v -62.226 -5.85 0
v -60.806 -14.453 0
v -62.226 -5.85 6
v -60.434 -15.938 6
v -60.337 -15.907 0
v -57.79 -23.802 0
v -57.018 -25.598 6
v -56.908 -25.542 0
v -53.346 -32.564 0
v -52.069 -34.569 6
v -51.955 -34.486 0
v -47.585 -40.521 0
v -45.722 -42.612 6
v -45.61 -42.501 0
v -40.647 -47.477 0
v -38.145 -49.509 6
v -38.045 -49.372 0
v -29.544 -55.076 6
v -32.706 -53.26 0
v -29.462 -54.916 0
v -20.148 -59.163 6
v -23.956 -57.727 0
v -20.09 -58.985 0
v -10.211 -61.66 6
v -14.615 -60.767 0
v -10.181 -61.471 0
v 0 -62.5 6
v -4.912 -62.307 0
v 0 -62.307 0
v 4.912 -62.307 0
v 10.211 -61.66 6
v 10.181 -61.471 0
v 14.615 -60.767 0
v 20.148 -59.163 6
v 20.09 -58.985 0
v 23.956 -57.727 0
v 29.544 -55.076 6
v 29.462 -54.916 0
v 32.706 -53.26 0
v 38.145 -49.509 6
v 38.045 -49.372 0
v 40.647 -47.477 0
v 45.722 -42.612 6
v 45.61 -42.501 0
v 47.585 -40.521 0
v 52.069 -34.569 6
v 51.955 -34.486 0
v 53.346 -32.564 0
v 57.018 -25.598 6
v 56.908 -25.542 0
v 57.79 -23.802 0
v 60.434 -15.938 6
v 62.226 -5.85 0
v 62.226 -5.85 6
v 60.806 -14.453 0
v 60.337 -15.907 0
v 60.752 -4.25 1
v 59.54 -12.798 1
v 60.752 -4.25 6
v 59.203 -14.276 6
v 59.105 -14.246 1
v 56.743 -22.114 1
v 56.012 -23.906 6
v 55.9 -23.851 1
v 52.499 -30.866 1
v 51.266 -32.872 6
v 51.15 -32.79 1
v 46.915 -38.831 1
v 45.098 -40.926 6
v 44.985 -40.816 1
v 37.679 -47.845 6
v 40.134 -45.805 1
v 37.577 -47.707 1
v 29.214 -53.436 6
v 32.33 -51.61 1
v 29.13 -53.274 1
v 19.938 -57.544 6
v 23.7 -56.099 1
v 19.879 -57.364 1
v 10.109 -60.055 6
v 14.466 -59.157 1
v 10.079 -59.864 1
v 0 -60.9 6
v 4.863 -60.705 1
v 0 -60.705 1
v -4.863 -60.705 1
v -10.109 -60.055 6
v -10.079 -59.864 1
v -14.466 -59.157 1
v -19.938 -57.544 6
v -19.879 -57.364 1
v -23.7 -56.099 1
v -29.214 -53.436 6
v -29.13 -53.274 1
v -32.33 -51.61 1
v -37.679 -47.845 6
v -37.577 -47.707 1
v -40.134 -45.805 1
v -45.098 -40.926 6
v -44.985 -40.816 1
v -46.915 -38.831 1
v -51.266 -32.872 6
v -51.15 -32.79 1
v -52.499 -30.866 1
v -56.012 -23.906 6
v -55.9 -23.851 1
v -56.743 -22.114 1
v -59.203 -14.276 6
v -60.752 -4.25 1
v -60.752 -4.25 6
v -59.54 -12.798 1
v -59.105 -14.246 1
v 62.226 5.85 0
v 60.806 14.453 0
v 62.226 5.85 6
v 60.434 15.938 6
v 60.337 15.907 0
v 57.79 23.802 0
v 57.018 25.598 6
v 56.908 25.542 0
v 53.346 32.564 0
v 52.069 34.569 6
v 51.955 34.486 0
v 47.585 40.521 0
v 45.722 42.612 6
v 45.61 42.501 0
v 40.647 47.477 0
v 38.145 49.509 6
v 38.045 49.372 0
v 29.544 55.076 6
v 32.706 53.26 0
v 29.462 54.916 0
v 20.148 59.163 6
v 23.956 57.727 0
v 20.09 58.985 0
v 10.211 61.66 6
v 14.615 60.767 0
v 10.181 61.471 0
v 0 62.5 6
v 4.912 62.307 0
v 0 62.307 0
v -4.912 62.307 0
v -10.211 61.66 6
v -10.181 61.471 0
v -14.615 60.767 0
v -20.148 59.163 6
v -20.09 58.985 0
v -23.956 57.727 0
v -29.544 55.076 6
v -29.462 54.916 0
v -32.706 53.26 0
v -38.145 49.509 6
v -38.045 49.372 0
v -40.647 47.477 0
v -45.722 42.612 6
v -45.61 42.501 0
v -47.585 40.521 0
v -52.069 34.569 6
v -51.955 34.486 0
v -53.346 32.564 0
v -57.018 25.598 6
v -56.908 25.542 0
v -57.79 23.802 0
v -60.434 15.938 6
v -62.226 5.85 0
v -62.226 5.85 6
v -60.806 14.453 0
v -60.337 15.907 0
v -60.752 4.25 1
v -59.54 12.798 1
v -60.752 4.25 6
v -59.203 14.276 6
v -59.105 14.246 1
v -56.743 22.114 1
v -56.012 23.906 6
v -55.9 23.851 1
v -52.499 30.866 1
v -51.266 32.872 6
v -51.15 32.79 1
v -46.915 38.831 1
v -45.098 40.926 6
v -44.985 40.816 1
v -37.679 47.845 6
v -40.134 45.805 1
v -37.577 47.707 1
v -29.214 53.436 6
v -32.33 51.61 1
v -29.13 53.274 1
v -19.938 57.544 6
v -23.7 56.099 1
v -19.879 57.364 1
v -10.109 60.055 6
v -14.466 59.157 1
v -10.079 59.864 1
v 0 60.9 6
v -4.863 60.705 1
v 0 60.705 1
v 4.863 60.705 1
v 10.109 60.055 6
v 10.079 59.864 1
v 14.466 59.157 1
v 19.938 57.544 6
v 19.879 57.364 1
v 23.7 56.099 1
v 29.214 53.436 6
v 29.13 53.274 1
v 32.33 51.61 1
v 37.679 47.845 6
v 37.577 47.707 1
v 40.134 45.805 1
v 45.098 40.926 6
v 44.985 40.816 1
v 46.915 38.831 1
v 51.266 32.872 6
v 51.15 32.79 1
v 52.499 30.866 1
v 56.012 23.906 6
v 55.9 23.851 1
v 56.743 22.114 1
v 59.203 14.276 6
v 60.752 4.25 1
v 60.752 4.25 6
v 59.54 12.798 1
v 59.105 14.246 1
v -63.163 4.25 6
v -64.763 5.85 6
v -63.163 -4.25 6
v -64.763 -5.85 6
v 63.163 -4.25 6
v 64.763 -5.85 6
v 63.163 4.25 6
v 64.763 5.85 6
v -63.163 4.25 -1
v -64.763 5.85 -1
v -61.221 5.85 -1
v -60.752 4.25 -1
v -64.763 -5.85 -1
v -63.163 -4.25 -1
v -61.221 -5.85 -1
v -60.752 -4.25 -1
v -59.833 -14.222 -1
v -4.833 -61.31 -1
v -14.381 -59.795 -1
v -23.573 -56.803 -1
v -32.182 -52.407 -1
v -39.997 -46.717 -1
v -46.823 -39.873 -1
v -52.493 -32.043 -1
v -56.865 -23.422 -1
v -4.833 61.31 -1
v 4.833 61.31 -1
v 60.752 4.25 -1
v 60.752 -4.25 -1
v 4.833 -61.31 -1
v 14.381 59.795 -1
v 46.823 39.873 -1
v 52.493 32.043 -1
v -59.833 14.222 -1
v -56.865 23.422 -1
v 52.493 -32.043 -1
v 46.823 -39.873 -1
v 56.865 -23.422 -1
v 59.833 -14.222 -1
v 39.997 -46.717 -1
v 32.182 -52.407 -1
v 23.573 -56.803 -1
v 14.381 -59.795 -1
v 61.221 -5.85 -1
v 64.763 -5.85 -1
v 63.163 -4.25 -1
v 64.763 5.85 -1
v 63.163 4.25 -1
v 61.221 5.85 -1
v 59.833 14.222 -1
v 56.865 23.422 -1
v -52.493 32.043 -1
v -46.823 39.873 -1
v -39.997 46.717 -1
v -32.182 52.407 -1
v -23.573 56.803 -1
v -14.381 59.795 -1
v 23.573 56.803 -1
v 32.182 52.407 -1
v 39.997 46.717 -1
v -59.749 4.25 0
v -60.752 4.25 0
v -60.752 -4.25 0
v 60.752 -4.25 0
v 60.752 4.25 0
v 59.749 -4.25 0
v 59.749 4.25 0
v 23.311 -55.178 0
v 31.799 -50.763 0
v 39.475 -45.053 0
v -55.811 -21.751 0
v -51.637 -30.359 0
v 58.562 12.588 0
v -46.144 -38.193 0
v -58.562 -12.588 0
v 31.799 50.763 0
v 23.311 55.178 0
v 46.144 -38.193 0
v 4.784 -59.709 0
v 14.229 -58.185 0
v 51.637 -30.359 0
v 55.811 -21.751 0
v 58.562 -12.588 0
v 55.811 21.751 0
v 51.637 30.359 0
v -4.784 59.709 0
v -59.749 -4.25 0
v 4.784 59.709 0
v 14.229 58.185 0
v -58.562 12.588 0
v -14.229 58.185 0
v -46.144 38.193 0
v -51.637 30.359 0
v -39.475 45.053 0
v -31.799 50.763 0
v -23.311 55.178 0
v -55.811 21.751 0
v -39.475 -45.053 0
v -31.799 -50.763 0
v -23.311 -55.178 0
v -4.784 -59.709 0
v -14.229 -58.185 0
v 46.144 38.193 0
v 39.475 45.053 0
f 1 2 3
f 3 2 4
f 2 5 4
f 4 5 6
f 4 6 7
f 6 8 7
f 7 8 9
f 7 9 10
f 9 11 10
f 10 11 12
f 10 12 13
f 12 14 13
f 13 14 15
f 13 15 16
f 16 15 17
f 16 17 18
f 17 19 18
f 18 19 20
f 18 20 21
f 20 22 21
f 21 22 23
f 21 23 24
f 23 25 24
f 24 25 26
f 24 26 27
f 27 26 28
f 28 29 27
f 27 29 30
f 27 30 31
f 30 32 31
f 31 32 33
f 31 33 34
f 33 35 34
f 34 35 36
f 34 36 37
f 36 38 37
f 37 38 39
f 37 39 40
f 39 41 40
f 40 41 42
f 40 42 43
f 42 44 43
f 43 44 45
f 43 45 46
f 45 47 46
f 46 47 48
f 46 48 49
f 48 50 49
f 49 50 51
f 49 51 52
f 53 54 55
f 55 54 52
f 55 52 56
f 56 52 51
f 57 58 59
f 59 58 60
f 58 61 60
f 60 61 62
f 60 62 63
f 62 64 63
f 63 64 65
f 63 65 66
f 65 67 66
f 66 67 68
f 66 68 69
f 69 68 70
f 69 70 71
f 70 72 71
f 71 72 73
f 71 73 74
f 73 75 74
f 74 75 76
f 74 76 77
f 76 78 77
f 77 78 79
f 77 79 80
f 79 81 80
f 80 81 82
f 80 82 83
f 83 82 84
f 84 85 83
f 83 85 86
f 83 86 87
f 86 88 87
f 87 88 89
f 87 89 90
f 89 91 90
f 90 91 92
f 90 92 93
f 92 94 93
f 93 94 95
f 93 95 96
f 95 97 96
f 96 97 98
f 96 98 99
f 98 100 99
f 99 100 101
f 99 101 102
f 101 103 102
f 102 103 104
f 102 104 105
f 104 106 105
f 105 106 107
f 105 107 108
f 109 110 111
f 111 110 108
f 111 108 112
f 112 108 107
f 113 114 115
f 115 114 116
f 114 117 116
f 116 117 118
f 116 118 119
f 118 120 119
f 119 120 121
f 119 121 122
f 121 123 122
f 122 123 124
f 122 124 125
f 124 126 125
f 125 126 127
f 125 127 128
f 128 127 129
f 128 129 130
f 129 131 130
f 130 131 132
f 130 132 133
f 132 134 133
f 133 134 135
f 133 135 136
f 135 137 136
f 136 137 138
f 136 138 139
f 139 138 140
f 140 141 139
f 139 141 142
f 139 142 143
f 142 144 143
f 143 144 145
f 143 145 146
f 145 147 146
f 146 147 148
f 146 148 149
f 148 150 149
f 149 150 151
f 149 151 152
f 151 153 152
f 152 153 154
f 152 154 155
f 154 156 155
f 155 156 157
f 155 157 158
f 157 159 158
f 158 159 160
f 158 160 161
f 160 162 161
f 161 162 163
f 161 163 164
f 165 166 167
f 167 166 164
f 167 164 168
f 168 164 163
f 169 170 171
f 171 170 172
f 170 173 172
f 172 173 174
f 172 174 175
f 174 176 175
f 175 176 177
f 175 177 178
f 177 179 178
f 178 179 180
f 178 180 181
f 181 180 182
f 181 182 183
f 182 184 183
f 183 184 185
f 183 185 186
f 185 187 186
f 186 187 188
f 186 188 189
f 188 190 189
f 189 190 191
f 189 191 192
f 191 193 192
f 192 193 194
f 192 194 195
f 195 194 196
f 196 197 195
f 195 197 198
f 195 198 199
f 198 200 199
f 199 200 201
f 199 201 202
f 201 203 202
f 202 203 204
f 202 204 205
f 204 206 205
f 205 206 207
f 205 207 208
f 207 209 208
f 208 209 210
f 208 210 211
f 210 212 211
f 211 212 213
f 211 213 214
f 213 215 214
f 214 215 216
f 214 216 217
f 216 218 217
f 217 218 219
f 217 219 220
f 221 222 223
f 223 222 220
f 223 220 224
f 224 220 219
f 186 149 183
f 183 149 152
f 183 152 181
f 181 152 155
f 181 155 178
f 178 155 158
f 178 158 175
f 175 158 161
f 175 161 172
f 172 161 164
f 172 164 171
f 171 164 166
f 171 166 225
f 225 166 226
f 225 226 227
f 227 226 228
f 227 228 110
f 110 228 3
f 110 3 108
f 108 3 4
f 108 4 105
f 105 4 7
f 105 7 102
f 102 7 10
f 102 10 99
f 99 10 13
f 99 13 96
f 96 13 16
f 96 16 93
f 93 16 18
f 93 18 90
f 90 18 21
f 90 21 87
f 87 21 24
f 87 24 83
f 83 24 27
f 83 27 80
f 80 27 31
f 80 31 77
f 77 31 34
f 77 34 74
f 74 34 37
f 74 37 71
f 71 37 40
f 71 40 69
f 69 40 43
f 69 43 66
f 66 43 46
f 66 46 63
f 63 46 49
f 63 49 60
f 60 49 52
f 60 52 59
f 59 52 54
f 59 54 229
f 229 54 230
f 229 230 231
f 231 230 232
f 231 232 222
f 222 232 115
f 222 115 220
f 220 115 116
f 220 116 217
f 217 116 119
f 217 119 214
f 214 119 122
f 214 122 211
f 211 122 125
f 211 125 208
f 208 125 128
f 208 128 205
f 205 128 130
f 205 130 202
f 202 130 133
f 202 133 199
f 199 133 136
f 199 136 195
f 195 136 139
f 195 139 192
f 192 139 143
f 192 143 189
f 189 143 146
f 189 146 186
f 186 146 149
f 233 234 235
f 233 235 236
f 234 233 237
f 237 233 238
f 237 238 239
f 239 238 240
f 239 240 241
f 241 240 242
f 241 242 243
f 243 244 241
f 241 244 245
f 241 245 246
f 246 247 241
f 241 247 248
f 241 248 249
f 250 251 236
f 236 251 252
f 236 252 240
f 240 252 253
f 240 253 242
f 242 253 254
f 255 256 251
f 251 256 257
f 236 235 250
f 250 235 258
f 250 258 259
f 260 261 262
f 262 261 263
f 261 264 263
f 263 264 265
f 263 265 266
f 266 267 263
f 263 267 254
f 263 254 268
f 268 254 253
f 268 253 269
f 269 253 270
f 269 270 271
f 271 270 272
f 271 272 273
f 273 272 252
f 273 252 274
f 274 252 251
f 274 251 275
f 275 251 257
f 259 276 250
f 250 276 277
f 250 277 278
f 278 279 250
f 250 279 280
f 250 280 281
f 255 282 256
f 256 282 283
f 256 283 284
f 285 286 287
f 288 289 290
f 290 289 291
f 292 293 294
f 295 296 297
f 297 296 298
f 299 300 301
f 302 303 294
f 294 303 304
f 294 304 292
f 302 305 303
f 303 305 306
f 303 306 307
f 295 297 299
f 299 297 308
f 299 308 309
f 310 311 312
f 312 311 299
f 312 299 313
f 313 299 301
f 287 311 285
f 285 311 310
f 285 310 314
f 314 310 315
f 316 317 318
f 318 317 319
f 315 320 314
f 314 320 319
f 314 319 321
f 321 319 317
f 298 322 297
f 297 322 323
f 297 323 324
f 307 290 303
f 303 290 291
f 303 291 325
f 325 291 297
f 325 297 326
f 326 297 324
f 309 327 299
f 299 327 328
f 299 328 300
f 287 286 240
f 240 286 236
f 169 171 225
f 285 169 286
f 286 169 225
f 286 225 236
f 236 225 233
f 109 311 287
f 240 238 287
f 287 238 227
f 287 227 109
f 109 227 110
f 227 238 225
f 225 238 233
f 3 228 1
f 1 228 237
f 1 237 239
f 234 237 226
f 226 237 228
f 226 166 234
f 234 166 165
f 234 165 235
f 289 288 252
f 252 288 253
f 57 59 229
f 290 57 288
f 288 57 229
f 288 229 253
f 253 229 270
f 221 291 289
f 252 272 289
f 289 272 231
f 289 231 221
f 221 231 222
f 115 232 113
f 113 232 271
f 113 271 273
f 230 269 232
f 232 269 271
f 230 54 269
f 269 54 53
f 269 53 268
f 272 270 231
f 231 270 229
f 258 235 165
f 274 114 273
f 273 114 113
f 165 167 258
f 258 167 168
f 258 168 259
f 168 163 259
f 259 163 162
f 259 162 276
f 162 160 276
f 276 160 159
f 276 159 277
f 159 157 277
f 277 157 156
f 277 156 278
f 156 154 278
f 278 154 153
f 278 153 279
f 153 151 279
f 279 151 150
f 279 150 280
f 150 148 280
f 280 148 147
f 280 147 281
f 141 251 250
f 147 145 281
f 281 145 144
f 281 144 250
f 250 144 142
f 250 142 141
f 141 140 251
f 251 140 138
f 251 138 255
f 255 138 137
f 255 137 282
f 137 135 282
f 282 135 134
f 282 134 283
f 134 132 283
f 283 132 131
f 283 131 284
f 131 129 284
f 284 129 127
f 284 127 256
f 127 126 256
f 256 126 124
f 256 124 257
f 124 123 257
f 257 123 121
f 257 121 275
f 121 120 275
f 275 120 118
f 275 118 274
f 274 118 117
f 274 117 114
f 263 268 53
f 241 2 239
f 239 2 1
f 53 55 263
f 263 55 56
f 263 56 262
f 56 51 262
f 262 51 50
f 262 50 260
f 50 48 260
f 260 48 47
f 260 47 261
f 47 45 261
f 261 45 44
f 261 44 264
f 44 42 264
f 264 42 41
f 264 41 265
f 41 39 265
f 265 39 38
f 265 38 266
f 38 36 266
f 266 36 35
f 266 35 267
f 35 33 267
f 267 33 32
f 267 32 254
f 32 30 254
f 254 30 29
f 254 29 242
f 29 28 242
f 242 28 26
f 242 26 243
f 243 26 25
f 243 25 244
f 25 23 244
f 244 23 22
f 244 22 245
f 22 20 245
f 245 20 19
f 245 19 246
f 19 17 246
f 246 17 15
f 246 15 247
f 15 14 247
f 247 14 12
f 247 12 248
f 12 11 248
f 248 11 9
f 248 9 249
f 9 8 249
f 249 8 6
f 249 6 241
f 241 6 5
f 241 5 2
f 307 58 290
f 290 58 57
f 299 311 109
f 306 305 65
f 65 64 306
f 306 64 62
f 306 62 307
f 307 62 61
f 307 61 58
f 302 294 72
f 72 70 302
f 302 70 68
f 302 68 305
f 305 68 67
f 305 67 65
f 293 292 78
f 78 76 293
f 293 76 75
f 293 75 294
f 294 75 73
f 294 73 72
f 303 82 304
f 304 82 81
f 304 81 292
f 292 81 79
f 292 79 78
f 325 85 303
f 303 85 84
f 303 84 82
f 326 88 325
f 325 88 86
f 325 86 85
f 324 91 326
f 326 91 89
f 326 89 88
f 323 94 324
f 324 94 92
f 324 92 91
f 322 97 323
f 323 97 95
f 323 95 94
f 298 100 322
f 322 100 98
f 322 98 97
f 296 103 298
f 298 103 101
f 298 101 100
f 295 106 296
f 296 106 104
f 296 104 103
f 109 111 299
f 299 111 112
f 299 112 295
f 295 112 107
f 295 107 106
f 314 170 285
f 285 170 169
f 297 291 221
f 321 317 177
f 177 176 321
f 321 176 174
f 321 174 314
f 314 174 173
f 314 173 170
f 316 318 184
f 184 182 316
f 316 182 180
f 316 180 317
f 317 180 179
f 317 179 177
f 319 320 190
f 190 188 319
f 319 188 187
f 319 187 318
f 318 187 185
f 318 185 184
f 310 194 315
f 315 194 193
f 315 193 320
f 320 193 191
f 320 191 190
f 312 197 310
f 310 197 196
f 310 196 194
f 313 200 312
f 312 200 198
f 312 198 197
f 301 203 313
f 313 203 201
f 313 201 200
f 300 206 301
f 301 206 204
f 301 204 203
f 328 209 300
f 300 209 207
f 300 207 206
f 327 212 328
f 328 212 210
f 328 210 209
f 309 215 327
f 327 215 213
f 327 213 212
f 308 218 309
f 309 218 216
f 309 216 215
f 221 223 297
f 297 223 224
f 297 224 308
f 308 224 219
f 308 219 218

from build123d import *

# Parameters (mm, degrees)
BOSS_EXTRUDE1_DEPTH = 6
BOSS_EXTRUDE2_START = -1
SKETCH1_2_R         = 62.5
BOSS_EXTRUDE2_DEPTH = 1
CUT_EXTRUDE1_DEPTH  = 89.591760339
BOSS_EXTRUDE3_START = -1
BOSS_EXTRUDE3_DEPTH = 7
CHAMFER1_SIZE       = 1


with BuildPart() as part:
    # Sketch1 → Boss-Extrude1 (new body)
    with BuildSketch(Plane.XY):
        with BuildLine():
            ThreePointArc((-60.751522615, -4.25), (-60.9, 0), (-60.751522615, 4.25))
            Line((-60.751522615, 4.25), (-62.355332571, 4.25))
            ThreePointArc((-62.355332571, 4.25), (-62.5, 0), (-62.355332571, -4.25))
            Line((-62.355332571, -4.25), (-60.751522615, -4.25))
        make_face()
        with BuildLine():
            Line((-62.355332571, 4.25), (-60.751522615, 4.25))
            ThreePointArc((-60.751522615, 4.25), (2.126296401, 60.862869334), (60.9, 0))
            ThreePointArc((60.9, 0), (2.126296401, -60.862869334), (-60.751522615, -4.25))
            Line((-60.751522615, -4.25), (-62.355332571, -4.25))
            ThreePointArc((-62.355332571, -4.25), (-62.295612153, -5.050416467), (-62.225617715, -5.85))
            ThreePointArc((-62.225617715, -5.85), (2.928215567, -62.431366745), (62.5, 0))
            ThreePointArc((62.5, 0), (2.928215567, 62.431366745), (-62.225617715, 5.85))
            ThreePointArc((-62.225617715, 5.85), (-62.295612153, 5.050416467), (-62.355332571, 4.25))
        make_face()
    extrude(amount=BOSS_EXTRUDE1_DEPTH)

    # Sketch1<2> → Boss-Extrude2 (add)
    with BuildSketch(Plane.XY.offset(BOSS_EXTRUDE2_START)):
        Circle(SKETCH1_2_R)
    extrude(amount=BOSS_EXTRUDE2_DEPTH)

    # Sketch1<4> → Cut-Extrude1 (cut, symmetric)
    with BuildSketch(Plane.XY):
        with BuildLine():
            ThreePointArc((-60.751522615, -4.25), (-60.9, 0), (-60.751522615, 4.25))
            Line((-60.751522615, 4.25), (-62.355332571, 4.25))
            ThreePointArc((-62.355332571, 4.25), (-62.5, 0), (-62.355332571, -4.25))
            Line((-62.355332571, -4.25), (-60.751522615, -4.25))
        make_face()
    cut_extrude1 = extrude(amount=CUT_EXTRUDE1_DEPTH, both=True, mode=Mode.SUBTRACT)

    # Sketch1<5> → Boss-Extrude3 (add)
    with BuildSketch(Plane.XY.offset(BOSS_EXTRUDE3_START)):
        with BuildLine():
            Line((-63.1627417, 4.25), (-62.355332571, 4.25))
            ThreePointArc((-62.355332571, 4.25), (-62.295612153, 5.050416467), (-62.225617715, 5.85))
            Line((-62.225617715, 5.85), (-64.7627417, 5.85))
            Line((-64.7627417, 5.85), (-64.7627417, -5.85))
            Line((-64.7627417, -5.85), (-62.225617715, -5.85))
            ThreePointArc((-62.225617715, -5.85), (-62.295612153, -5.050416467), (-62.355332571, -4.25))
            Line((-62.355332571, -4.25), (-63.1627417, -4.25))
            Line((-63.1627417, -4.25), (-63.1627417, 4.25))
        make_face()
    boss_extrude3 = extrude(amount=BOSS_EXTRUDE3_DEPTH)

    # Mirror1: Cut-Extrude1, Boss-Extrude3 across plane
    add(cut_extrude1.mirror(Plane(origin=(0, 0, 0), x_dir=(0, 0, 1), z_dir=(1, 0, 0))), mode=Mode.SUBTRACT)
    add(boss_extrude3.mirror(Plane(origin=(0, 0, 0), x_dir=(0, 0, 1), z_dir=(1, 0, 0))))

    # Chamfer1
    chamfer1_edges = [part.edges().sort_by_distance(p)[0] for p in [
        (0, -60.9, 0),
        (0, -62.5, -1),
        (0, 60.9, 0),
        (0, 62.5, -1),
    ]]
    chamfer(chamfer1_edges, length=CHAMFER1_SIZE - 0.0001)  # a hair under: the kernel refuses the full size


solid = part.part
